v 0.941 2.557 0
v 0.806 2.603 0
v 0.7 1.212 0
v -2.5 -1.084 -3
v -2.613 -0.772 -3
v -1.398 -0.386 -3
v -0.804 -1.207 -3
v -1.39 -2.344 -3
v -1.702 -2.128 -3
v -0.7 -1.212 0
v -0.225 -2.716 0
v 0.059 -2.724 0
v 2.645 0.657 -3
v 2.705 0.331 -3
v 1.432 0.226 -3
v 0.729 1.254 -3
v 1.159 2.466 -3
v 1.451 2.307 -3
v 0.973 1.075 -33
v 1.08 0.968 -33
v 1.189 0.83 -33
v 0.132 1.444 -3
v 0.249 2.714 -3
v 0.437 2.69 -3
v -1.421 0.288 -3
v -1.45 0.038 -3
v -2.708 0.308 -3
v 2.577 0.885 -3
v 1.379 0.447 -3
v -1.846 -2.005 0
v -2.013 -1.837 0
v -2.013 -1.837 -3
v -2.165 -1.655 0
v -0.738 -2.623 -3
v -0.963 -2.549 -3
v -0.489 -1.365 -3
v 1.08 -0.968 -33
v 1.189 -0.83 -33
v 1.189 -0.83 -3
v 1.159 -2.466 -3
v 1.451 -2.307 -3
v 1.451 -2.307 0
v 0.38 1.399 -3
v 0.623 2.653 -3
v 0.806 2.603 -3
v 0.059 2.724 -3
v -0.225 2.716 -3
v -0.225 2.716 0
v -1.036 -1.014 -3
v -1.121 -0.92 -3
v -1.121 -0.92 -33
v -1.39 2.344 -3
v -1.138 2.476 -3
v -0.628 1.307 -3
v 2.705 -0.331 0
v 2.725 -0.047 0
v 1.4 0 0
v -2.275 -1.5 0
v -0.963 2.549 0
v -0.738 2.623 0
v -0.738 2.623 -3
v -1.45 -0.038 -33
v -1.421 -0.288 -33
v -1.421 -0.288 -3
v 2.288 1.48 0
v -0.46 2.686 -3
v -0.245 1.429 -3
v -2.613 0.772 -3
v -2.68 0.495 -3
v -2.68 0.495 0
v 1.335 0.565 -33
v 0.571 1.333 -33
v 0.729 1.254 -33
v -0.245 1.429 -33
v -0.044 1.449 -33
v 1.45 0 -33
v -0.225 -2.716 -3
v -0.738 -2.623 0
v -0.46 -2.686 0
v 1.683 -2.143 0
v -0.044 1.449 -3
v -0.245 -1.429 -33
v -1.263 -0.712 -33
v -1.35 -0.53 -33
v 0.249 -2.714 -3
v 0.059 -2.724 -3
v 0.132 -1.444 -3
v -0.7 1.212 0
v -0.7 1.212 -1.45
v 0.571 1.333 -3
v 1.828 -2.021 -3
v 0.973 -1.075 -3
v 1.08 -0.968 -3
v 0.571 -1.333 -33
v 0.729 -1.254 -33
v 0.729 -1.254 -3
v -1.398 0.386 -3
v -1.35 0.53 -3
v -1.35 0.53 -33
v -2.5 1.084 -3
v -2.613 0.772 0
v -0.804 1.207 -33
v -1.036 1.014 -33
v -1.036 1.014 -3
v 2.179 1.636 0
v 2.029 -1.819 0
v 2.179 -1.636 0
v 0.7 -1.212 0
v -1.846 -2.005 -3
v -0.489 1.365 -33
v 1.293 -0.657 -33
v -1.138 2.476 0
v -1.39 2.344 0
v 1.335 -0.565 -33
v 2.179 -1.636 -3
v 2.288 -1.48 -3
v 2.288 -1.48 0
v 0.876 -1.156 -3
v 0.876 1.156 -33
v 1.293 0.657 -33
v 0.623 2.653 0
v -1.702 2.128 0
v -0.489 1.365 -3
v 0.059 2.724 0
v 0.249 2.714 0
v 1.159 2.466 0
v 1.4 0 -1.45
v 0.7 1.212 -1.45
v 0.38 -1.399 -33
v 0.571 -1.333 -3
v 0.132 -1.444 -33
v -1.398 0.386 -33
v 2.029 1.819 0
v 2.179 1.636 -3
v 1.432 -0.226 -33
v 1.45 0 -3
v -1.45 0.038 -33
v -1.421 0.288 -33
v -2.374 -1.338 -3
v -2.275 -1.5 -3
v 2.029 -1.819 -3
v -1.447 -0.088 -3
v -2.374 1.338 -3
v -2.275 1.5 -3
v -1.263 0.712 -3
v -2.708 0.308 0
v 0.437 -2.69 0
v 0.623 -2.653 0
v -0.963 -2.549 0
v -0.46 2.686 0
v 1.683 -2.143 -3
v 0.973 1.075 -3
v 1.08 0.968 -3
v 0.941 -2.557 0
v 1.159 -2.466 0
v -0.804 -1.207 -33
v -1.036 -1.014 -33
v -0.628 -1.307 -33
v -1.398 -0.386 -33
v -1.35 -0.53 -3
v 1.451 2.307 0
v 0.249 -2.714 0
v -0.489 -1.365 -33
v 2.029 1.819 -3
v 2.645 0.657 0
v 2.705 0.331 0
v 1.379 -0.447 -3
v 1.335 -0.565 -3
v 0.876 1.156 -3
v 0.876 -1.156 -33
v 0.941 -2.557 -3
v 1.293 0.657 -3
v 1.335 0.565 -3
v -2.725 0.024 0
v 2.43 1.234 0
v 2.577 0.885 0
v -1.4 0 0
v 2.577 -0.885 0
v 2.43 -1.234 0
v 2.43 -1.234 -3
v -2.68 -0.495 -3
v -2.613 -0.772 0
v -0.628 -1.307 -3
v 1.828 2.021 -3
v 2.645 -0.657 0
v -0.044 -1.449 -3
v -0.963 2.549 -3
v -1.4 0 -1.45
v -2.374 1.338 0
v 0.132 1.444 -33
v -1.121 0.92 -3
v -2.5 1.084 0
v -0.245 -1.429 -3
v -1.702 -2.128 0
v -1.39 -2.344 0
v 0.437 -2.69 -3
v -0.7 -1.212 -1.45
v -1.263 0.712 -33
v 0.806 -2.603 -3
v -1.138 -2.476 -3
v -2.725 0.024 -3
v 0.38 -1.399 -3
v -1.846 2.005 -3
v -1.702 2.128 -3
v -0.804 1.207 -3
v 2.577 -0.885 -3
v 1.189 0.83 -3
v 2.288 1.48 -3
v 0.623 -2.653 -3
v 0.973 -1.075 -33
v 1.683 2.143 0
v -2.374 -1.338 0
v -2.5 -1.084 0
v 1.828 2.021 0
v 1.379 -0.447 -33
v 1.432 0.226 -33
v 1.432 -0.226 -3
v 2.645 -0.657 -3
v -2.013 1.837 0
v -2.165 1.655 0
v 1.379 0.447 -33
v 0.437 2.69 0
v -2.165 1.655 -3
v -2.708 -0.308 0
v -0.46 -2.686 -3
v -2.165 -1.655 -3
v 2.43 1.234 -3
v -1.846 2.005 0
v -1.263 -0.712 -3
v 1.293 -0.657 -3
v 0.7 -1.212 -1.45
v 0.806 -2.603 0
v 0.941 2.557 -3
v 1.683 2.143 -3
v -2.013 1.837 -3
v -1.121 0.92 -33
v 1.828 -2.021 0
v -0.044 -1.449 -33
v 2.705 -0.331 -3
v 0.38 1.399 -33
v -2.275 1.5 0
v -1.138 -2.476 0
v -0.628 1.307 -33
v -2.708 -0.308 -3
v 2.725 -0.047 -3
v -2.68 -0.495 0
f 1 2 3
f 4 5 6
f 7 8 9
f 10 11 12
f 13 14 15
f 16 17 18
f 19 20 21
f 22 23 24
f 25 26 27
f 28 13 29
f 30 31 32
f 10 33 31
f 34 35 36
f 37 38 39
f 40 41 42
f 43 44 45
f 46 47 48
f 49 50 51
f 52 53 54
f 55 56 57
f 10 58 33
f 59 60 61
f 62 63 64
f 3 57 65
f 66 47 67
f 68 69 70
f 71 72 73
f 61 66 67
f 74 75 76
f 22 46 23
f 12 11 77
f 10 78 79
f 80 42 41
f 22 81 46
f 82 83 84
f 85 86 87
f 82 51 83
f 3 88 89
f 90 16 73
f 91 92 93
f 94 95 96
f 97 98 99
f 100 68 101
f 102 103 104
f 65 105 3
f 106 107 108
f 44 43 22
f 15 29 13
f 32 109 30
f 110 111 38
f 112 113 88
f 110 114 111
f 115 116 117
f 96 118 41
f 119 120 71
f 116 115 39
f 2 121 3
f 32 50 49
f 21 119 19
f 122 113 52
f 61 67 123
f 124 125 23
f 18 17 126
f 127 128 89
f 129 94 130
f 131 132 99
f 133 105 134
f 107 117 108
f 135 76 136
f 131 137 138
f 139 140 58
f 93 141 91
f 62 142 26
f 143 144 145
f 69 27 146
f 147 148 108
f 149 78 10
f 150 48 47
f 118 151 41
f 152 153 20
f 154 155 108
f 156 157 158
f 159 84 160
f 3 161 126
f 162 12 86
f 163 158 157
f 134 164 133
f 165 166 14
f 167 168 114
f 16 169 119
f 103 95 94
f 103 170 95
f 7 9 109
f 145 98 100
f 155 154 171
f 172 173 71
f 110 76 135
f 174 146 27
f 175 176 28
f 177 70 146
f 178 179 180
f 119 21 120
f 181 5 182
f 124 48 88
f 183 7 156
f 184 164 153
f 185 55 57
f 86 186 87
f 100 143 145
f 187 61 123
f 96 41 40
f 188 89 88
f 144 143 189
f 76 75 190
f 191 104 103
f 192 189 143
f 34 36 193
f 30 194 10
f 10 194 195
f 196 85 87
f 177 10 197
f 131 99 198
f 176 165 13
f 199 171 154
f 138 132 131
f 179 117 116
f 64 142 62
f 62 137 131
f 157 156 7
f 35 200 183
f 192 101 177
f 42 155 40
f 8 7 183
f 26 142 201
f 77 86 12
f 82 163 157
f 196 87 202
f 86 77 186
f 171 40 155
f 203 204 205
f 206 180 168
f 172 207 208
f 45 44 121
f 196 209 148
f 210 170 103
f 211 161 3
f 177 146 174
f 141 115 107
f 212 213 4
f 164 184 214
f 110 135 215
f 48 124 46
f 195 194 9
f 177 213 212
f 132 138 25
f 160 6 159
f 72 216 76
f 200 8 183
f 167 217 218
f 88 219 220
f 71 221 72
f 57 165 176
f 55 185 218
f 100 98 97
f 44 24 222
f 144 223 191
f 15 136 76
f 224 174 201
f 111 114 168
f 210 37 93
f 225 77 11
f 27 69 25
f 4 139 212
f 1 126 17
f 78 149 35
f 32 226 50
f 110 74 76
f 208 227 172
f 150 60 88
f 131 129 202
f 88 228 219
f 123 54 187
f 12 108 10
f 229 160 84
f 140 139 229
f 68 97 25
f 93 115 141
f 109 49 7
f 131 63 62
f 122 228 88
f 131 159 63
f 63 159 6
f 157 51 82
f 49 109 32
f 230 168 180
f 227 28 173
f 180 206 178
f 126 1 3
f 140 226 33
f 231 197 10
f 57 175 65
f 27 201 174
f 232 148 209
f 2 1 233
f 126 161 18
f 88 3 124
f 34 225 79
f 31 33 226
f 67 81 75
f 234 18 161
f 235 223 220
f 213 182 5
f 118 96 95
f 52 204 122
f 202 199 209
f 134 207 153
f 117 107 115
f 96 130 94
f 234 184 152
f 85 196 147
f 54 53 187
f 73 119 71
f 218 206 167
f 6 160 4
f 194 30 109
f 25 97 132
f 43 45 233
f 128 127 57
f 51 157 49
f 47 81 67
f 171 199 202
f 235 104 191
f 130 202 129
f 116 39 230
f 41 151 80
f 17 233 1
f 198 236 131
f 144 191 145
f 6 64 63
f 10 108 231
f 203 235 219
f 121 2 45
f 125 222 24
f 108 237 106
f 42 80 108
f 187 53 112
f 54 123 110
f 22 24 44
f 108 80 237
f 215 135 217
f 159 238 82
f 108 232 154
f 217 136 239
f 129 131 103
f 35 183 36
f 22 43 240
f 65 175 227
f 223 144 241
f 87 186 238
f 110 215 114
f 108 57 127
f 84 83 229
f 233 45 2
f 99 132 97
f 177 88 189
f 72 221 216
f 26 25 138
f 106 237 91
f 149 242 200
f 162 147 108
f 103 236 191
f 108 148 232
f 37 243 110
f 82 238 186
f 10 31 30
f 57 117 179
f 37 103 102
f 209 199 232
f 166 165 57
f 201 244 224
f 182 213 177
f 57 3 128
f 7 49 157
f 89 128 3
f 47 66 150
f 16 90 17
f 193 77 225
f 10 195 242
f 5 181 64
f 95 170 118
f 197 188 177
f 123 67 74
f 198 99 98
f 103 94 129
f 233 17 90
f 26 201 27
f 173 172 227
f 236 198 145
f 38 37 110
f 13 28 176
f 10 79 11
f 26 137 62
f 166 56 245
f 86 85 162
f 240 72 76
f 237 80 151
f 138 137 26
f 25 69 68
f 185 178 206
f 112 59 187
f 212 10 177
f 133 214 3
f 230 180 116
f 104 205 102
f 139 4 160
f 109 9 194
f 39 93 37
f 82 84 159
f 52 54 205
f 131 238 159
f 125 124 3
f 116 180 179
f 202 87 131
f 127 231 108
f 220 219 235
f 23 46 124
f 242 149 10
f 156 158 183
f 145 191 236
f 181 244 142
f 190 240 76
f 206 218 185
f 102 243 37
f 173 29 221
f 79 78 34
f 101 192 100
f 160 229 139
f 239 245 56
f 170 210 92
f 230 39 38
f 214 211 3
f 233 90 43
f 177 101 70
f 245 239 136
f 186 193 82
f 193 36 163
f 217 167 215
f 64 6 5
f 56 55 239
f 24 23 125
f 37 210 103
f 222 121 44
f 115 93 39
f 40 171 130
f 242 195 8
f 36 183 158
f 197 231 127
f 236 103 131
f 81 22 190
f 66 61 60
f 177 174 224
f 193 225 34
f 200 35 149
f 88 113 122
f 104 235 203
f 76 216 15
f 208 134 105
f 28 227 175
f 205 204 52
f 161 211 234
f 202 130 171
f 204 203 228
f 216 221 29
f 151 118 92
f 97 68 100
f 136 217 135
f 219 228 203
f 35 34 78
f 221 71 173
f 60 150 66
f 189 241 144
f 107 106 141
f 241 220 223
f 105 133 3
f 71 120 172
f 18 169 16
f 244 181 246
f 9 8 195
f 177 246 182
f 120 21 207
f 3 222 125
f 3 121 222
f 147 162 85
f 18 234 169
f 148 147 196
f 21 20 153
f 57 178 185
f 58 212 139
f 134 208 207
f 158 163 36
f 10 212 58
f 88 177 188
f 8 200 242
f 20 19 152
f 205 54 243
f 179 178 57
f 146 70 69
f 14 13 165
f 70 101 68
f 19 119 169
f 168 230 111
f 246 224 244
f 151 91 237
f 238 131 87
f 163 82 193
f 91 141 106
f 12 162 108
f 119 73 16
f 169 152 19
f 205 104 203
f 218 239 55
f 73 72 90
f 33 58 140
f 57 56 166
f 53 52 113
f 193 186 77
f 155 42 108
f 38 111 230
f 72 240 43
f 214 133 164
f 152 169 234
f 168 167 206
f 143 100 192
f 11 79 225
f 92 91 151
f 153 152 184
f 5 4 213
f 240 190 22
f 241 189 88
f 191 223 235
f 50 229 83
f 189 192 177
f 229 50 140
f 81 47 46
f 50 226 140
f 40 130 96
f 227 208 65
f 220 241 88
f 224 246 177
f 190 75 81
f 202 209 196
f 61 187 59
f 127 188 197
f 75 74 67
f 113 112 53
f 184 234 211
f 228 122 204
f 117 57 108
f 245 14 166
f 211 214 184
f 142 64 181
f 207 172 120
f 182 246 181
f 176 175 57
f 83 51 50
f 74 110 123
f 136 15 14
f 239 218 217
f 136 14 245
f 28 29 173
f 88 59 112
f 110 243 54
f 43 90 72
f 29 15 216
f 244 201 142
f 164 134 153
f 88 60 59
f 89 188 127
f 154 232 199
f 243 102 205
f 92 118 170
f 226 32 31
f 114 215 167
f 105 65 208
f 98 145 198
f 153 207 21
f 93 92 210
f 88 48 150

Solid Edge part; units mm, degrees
sketch "Sketch1" plane through (0, 0, 0) normal (0, 0, 1) x (1, 0, 0)
  circle A0 centre (0, 0) radius 2.725
extrude "Protrusion1" add sketch "Sketch1" against normal blind 3
sketch "Sketch2" plane through (0, 0, 0) normal (0, 0, 1) x (1, 0, 0)
  line L0 (-0.7, -1.2124) -> (-1.05, -0.6062)
  line L1 (-1.4, 0) -> (-1.05, -0.6062)
  line L2 (-1.4, 0) -> (-1.05, 0.6062)
  line L3 (-0.7, 1.2124) -> (-1.05, 0.6062)
  line L4 (-0.7, 1.2124) -> (0, 1.2124)
  line L5 (0.7, 1.2124) -> (0, 1.2124)
  line L6 (0.7, 1.2124) -> (1.05, 0.6062)
  line L7 (1.4, 0) -> (1.05, 0.6062)
  line L8 (1.4, 0) -> (1.05, -0.6062)
  line L9 (0.7, -1.2124) -> (1.05, -0.6062)
  line L10 (0.7, -1.2124) -> (0, -1.2124)
  line L11 (-0.7, -1.2124) -> (0, -1.2124)
extrude "ExtrudedCutout_1" cut sketch "Sketch2" against normal blind 1.45
sketch "Sketch3" plane through (0, 0, -3) normal (0, 0, -1) x (1, 0, 0)
  circle A0 centre (0, 0) radius 1.45
extrude "ExtrudedProtrusion_2" add sketch "Sketch3" along normal blind 30
properties material "Stainless steel"
